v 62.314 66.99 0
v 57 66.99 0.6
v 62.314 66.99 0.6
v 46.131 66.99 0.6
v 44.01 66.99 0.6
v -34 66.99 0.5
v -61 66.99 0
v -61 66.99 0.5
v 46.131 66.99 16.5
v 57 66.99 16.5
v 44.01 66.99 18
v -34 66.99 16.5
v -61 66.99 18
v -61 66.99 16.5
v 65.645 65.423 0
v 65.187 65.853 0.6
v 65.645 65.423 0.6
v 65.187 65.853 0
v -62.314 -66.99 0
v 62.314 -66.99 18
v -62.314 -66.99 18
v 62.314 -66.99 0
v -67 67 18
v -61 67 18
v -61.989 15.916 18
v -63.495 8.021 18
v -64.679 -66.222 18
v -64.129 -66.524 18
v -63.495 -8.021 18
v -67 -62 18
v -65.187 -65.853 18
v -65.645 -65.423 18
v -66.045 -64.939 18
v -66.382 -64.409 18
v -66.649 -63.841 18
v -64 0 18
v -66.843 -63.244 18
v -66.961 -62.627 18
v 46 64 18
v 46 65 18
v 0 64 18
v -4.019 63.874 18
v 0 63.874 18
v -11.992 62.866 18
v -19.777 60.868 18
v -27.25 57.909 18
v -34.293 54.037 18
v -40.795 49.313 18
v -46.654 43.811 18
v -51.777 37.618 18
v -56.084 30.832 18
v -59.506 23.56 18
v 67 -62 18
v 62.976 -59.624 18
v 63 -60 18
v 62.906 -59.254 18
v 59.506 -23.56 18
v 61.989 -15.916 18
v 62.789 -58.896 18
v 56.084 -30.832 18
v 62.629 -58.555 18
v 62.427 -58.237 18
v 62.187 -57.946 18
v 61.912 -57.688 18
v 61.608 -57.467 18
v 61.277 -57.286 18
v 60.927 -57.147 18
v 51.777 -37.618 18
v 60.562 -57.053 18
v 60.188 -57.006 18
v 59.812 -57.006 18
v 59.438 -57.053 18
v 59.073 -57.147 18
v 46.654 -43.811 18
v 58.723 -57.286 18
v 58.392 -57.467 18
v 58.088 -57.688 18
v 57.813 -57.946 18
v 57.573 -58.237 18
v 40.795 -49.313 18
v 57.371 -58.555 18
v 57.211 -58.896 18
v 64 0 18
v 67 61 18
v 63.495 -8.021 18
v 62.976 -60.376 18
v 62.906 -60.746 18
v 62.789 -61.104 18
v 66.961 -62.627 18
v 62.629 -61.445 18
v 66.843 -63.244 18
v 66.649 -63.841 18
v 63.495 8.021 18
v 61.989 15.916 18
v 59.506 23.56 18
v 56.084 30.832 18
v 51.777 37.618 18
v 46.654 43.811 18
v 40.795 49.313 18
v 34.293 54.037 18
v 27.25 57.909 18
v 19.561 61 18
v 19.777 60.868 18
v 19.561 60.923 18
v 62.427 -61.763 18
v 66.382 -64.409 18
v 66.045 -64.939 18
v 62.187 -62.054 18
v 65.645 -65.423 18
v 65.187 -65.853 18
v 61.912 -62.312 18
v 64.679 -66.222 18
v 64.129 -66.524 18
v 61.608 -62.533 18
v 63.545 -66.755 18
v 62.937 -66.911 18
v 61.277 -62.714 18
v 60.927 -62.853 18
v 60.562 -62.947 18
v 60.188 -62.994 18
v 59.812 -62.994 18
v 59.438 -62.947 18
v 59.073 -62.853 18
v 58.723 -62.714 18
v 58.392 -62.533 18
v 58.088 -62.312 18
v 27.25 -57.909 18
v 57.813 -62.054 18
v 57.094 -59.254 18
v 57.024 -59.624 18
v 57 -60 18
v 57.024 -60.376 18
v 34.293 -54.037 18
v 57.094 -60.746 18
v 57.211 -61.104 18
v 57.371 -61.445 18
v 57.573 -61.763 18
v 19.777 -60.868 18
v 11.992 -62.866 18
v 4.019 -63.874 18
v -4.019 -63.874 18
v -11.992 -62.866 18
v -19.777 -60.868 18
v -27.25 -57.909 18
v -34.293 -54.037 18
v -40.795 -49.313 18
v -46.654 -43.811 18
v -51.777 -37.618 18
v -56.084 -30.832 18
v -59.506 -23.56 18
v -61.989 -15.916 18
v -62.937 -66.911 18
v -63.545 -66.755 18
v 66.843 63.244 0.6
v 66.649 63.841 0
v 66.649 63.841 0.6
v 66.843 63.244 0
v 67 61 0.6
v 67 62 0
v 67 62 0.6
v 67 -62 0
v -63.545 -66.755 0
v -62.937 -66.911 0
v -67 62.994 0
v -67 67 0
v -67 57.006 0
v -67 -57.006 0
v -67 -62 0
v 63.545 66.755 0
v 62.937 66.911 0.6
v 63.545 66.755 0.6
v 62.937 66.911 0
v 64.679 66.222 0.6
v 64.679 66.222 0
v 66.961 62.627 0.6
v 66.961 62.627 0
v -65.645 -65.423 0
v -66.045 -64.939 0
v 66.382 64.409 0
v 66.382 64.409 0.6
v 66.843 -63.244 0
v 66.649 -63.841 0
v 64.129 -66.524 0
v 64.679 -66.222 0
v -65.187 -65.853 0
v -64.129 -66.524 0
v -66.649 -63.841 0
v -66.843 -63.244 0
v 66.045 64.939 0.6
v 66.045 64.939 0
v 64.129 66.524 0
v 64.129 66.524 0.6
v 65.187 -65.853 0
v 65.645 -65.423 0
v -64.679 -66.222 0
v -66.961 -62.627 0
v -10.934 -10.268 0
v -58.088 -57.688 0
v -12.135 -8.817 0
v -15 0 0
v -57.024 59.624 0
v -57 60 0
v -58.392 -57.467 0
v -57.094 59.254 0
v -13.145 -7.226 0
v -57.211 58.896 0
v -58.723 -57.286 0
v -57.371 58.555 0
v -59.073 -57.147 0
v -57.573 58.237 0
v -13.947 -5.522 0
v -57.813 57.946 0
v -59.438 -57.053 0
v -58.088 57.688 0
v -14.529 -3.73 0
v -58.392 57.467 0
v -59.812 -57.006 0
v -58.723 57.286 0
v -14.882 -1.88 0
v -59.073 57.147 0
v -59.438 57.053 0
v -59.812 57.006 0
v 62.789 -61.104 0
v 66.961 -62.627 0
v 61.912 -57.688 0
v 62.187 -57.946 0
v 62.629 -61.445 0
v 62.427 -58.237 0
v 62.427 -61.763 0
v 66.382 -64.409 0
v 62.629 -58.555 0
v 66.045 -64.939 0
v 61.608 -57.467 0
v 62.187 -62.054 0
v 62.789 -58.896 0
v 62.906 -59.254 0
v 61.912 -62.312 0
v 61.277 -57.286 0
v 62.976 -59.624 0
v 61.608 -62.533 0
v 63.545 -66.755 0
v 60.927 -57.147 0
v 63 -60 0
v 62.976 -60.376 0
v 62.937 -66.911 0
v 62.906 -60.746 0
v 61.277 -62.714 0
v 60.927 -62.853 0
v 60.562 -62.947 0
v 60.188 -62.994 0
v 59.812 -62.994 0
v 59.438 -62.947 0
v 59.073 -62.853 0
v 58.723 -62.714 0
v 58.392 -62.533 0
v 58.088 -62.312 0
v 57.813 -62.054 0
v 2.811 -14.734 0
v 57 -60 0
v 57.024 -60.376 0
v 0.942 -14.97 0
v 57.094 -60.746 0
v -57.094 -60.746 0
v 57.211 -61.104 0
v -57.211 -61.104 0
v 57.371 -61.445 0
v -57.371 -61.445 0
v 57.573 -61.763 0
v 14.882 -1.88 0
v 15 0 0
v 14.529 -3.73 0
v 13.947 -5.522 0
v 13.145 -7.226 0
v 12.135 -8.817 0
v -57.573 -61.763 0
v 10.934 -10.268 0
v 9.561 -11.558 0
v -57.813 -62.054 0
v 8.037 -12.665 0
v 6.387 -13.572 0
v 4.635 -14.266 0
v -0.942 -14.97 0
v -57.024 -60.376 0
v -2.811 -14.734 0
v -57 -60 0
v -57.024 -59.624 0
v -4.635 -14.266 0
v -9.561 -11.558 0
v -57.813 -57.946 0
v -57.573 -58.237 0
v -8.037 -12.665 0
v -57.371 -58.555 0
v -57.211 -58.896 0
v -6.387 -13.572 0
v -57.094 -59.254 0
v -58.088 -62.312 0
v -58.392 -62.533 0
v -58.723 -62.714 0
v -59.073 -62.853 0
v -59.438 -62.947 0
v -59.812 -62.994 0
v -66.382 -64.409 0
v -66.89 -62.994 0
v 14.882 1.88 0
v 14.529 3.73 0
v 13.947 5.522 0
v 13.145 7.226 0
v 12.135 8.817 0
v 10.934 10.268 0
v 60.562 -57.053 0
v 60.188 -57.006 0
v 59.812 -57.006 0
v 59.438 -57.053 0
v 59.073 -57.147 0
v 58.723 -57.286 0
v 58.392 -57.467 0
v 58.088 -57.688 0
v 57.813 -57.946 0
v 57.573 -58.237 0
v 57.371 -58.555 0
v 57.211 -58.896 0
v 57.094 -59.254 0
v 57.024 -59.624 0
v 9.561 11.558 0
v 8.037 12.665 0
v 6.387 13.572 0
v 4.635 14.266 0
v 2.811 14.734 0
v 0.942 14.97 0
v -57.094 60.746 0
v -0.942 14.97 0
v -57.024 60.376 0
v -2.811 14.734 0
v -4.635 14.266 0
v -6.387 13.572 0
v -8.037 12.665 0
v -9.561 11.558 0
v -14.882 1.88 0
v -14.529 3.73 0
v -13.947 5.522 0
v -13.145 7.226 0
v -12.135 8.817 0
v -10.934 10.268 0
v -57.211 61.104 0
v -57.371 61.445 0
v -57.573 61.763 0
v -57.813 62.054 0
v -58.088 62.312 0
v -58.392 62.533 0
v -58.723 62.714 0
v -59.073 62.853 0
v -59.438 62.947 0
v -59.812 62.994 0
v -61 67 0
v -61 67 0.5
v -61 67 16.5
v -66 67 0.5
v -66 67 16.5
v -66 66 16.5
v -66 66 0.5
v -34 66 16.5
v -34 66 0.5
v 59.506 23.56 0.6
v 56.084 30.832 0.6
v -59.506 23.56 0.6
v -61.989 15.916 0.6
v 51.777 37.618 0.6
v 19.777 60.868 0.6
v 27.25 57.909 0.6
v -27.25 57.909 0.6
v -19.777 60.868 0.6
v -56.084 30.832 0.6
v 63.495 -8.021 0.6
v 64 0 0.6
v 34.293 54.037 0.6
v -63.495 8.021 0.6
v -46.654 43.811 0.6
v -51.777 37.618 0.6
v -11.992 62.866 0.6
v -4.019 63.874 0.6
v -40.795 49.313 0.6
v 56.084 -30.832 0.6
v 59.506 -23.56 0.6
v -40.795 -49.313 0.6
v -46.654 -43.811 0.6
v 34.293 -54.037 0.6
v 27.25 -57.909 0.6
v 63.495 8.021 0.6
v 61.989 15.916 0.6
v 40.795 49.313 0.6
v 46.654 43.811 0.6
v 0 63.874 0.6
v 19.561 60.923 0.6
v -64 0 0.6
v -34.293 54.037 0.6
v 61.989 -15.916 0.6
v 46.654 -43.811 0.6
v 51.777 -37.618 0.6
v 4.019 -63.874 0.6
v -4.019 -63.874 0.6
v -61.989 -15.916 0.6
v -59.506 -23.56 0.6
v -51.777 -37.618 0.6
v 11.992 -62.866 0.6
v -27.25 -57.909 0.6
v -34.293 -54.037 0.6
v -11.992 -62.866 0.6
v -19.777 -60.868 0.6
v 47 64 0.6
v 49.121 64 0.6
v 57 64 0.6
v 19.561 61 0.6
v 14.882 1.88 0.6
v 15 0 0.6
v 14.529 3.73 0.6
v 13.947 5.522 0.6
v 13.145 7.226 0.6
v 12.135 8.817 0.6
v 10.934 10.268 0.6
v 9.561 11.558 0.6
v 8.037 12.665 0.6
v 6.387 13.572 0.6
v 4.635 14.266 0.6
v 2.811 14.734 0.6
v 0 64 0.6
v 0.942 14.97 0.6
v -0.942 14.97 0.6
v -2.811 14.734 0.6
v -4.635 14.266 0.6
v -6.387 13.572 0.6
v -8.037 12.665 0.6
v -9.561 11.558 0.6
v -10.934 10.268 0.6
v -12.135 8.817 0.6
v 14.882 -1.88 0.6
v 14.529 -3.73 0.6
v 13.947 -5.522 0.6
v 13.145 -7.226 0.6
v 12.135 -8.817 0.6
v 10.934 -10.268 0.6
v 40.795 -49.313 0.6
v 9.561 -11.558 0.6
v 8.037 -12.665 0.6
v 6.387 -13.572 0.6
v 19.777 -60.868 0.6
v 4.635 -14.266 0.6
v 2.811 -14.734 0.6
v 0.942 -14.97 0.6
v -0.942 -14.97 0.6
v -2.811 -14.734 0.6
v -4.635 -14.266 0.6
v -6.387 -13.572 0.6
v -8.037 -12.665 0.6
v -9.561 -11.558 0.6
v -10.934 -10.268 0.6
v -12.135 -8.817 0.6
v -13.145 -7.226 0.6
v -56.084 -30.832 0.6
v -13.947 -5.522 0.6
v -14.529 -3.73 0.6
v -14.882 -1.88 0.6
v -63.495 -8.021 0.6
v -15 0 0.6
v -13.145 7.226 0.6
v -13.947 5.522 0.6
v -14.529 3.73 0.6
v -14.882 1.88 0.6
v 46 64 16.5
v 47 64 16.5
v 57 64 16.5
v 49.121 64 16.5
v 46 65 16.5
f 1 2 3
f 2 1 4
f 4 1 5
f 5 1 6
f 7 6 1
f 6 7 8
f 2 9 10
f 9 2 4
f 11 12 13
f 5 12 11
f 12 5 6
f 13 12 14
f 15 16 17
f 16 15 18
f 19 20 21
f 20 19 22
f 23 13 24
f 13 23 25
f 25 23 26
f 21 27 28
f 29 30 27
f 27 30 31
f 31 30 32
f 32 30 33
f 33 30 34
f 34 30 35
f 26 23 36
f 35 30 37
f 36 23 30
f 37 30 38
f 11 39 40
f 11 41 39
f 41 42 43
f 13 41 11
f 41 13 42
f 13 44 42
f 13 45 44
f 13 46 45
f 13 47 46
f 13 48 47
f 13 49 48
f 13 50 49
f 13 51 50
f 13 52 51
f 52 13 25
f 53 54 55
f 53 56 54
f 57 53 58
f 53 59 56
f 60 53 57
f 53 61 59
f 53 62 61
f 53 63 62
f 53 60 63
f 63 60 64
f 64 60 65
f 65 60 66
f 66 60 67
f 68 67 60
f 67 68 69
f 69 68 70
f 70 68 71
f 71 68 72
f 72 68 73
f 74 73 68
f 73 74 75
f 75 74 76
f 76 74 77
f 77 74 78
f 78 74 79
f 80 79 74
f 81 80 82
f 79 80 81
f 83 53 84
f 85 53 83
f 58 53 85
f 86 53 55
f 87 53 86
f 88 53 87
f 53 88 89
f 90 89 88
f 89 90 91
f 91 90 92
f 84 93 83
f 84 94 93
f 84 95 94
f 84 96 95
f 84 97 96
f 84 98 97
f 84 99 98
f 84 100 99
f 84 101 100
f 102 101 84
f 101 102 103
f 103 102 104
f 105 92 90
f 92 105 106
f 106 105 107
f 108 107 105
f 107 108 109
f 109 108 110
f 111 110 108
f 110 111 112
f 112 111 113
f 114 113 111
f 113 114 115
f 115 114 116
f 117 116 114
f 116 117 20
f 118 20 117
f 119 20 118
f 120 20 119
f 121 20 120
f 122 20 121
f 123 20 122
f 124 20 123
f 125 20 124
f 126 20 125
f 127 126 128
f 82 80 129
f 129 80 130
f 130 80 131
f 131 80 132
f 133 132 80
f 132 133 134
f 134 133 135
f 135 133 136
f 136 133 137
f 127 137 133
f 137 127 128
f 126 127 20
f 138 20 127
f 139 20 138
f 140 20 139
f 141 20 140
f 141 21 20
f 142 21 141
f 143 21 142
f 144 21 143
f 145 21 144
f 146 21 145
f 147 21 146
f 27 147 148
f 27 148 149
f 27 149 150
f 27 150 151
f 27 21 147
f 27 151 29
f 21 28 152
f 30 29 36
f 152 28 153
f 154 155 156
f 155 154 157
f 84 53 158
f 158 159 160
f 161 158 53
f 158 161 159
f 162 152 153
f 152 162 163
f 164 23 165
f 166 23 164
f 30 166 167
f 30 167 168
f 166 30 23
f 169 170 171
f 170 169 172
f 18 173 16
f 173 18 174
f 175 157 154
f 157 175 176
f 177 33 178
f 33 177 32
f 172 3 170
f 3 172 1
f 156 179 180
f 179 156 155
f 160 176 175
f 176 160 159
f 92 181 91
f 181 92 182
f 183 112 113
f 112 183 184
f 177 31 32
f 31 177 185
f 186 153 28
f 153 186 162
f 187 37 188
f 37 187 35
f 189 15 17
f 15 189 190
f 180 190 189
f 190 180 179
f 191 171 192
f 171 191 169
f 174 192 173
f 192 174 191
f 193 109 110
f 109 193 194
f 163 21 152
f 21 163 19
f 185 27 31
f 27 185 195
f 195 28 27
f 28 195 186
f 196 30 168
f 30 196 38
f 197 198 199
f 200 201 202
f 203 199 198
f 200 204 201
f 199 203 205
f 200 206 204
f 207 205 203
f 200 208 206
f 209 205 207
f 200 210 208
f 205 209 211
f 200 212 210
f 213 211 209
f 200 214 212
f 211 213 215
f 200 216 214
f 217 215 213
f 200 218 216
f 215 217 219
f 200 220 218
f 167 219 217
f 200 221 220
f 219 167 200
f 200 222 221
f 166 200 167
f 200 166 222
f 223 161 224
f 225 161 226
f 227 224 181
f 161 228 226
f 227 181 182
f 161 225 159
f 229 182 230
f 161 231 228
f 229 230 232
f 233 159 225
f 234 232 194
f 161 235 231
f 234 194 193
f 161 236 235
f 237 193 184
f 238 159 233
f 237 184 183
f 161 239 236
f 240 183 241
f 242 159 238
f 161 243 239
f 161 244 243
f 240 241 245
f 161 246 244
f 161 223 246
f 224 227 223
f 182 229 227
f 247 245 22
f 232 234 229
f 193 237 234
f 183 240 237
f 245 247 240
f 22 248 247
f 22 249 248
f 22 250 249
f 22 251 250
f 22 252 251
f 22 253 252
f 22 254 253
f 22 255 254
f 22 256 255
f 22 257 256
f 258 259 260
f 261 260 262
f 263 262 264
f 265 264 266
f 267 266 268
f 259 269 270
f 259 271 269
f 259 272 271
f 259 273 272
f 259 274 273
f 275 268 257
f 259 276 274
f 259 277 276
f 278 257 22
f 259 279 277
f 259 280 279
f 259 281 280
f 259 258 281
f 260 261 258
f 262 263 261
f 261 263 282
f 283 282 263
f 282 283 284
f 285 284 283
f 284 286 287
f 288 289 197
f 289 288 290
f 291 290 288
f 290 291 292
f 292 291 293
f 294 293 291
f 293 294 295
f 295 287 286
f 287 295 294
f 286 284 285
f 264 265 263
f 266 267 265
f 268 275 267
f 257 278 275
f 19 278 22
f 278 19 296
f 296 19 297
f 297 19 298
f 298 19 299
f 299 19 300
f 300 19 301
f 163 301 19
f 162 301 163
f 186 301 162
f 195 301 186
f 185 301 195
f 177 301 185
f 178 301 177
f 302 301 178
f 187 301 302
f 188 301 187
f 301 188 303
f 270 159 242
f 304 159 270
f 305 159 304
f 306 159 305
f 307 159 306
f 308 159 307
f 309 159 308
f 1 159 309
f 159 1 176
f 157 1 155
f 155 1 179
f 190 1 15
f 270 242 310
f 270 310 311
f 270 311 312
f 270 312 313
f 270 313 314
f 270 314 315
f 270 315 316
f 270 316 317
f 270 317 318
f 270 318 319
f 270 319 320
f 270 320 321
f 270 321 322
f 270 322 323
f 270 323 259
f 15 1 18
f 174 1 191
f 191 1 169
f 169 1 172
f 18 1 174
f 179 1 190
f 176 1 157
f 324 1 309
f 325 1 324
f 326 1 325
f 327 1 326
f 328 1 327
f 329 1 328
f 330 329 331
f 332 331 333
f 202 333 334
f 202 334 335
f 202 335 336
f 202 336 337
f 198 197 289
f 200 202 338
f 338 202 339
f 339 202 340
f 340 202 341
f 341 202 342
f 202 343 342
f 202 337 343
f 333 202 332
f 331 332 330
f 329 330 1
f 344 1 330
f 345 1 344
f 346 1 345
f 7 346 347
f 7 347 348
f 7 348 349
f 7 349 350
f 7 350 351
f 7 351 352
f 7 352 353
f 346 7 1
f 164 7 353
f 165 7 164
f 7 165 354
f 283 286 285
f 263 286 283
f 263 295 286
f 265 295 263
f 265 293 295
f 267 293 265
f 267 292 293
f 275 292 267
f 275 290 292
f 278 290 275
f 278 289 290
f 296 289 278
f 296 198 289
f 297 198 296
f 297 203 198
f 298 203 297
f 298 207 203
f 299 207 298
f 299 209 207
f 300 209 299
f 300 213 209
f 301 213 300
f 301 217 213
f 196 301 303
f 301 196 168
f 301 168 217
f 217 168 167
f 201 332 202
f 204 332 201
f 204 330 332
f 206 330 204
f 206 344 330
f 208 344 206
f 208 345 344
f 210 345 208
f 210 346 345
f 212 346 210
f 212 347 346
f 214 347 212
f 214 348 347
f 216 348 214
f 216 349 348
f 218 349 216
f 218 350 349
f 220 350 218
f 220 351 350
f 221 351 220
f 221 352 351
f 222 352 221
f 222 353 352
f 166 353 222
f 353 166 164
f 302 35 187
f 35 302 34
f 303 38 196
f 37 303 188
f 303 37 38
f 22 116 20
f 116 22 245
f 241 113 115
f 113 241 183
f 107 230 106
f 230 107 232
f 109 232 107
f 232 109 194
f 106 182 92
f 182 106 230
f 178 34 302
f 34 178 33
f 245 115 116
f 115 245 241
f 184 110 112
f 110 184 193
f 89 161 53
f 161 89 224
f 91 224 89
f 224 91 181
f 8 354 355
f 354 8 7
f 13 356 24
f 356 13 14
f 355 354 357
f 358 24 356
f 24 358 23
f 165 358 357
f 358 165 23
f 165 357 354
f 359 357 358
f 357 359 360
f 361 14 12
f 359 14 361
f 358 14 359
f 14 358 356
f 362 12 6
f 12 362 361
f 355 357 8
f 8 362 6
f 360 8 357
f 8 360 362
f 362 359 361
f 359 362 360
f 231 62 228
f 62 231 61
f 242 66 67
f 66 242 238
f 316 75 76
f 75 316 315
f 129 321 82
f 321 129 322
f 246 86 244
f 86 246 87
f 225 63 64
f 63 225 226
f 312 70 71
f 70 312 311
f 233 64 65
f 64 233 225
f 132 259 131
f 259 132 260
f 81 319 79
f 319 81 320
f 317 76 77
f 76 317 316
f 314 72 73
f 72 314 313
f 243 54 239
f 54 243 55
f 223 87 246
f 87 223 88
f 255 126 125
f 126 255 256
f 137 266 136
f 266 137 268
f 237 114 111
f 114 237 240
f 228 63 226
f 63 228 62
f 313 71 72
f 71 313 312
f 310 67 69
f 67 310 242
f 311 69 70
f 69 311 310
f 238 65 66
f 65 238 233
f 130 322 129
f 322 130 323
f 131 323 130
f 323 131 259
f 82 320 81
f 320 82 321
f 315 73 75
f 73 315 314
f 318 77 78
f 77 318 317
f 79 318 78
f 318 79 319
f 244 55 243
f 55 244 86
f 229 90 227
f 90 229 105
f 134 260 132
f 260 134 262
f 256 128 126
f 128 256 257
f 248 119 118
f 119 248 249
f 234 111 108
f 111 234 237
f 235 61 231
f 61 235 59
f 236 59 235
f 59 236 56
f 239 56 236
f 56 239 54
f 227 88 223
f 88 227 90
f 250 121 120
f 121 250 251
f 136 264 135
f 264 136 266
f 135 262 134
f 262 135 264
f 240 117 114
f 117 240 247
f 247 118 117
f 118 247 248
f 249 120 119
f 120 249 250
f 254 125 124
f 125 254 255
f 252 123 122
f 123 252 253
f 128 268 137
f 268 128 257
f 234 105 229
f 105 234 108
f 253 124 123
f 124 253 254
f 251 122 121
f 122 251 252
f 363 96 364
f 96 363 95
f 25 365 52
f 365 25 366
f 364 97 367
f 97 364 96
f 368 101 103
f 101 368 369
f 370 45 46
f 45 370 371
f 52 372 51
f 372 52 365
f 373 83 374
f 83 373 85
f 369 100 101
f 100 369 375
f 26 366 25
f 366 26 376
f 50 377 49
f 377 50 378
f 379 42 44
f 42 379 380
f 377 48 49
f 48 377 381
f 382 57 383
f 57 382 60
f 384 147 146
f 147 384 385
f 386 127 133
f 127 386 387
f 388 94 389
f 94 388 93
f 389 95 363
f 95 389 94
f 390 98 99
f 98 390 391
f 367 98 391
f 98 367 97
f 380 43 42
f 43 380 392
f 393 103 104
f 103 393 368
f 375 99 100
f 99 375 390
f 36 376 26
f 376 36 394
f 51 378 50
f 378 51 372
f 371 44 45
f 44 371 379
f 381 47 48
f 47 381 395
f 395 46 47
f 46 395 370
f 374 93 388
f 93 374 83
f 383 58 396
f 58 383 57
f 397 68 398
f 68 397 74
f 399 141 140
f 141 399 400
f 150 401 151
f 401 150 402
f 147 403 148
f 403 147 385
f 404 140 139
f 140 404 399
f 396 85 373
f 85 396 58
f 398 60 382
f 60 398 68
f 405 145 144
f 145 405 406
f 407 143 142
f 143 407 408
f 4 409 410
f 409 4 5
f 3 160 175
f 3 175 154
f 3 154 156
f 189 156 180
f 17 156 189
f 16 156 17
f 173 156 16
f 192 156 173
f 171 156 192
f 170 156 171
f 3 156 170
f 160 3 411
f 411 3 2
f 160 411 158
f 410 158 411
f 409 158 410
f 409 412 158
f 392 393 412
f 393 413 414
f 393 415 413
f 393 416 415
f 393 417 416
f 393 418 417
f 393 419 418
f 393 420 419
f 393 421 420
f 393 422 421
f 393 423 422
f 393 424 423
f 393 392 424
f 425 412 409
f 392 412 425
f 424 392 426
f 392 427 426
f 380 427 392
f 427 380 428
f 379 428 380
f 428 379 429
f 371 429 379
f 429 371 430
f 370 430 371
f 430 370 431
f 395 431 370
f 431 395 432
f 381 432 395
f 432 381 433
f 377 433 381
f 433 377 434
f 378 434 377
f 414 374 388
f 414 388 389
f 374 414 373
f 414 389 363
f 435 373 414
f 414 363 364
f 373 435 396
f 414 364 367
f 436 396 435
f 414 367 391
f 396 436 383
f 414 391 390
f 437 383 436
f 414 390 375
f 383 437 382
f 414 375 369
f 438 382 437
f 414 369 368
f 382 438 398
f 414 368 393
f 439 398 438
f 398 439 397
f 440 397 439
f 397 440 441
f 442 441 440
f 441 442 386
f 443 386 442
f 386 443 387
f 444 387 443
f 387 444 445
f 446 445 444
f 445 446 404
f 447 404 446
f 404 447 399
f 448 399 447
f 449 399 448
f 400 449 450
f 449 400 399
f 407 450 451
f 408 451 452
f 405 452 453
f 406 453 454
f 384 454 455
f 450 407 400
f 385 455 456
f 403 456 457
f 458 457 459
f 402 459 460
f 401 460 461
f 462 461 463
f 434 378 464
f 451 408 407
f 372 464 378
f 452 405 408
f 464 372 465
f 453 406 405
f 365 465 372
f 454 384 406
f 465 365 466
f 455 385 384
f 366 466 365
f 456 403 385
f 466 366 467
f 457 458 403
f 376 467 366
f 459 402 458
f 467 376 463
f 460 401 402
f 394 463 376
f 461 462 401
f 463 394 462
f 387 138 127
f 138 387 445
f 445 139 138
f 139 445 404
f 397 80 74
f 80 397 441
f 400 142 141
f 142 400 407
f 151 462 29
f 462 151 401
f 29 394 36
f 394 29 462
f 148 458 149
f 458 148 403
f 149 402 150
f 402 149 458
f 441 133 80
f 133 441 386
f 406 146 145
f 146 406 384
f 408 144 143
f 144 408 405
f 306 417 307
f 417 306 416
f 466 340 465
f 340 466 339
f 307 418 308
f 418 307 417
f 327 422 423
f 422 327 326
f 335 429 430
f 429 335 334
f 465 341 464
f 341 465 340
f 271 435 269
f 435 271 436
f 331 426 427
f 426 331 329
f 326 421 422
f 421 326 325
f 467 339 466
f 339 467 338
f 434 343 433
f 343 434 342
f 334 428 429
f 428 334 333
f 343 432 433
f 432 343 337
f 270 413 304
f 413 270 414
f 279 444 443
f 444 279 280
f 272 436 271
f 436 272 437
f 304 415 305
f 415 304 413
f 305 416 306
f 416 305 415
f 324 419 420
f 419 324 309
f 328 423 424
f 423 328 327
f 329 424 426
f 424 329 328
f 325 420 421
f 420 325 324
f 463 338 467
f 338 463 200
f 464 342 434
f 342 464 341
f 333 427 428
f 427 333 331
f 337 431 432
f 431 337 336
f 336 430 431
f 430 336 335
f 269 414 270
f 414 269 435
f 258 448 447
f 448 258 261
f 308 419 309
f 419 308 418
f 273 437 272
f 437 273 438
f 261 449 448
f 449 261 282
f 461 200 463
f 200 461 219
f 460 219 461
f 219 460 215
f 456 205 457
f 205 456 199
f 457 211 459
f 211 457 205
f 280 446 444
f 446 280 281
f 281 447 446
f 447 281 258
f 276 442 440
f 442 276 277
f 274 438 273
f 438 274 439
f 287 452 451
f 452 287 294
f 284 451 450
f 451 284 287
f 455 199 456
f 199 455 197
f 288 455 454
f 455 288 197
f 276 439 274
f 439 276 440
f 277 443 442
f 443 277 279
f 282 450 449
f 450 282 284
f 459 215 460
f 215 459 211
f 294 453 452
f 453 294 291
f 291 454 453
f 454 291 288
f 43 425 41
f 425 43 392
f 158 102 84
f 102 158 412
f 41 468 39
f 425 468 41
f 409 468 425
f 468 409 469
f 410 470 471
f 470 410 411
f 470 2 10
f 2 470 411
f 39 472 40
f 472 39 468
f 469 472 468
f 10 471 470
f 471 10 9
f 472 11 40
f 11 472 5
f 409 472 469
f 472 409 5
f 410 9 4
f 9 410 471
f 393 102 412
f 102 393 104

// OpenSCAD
$fn = 50;


difference() {
	union() {
		hull() {
			translate(v = [-62.0000000000, 62.0000000000, 0]) {
				cylinder(h = 18, r = 5);
			}
			translate(v = [62.0000000000, 62.0000000000, 0]) {
				cylinder(h = 18, r = 5);
			}
			translate(v = [-62.0000000000, -62.0000000000, 0]) {
				cylinder(h = 18, r = 5);
			}
			translate(v = [62.0000000000, -62.0000000000, 0]) {
				cylinder(h = 18, r = 5);
			}
		}
		translate(v = [-67.0000000000, 61.0000000000, 0]) {
			cube(size = [6, 6, 18]);
		}
	}
	union() {
		translate(v = [-67.5000000000, -60.0000000000, -250.0000000000]) {
			rotate(a = [0, 0, 0]) {
				difference() {
					union() {
						hull() {
							translate(v = [7.5000000000, 0, 0]) {
								cylinder(h = 250, r = 3.0000000000, r1 = 3.0000000000, r2 = 3.0000000000);
							}
							translate(v = [-7.5000000000, 0, 0]) {
								cylinder(h = 250, r = 3.0000000000, r1 = 3.0000000000, r2 = 3.0000000000);
							}
						}
					}
					union();
				}
			}
		}
		translate(v = [-67.5000000000, 60.0000000000, -250.0000000000]) {
			rotate(a = [0, 0, 0]) {
				difference() {
					union() {
						hull() {
							translate(v = [7.5000000000, 0, 0]) {
								cylinder(h = 250, r = 3.0000000000, r1 = 3.0000000000, r2 = 3.0000000000);
							}
							translate(v = [-7.5000000000, 0, 0]) {
								cylinder(h = 250, r = 3.0000000000, r1 = 3.0000000000, r2 = 3.0000000000);
							}
						}
					}
					union();
				}
			}
		}
		translate(v = [-66.0000000000, 66.0000000000, 0.5000000000]) {
			cube(size = [32, 1, 16]);
		}
		translate(v = [60.0000000000, -60.0000000000, -50.0000000000]) {
			cylinder(h = 100, r = 3.0000000000);
		}
		translate(v = [0, 0, 0.6000000000]) {
			cylinder(h = 20.4000000000, r = 64.0000000000);
		}
		translate(v = [0, 0, -9.0000000000]) {
			cylinder(h = 18, r = 15.0000000000);
		}
		translate(v = [0.0000000000, 61.0000000000, 0.6000000000]) {
			cube(size = [67.0000000000, 3, 20.4000000000]);
		}
		translate(v = [57.0000000000, 61.0000000000, 0.6000000000]) {
			cube(size = [10, 6, 20.4000000000]);
		}
		translate(v = [46.0000000000, 61.0000000000, 16.5000000000]) {
			cube(size = [21, 6, 1.5000000000]);
		}
		translate(v = [43.2500000000, 67.7500000000, 0.6000000000]) {
			rotate(a = [0, 0, -45]) {
				cube(size = [7.5000000000, 1.5000000000, 20.4000000000]);
			}
		}
		translate(v = [12.0610000000, 59.0000000000, 0.6000000000]) {
			cube(size = [7.5000000000, 2, 17.4000000000]);
		}
	}
}
